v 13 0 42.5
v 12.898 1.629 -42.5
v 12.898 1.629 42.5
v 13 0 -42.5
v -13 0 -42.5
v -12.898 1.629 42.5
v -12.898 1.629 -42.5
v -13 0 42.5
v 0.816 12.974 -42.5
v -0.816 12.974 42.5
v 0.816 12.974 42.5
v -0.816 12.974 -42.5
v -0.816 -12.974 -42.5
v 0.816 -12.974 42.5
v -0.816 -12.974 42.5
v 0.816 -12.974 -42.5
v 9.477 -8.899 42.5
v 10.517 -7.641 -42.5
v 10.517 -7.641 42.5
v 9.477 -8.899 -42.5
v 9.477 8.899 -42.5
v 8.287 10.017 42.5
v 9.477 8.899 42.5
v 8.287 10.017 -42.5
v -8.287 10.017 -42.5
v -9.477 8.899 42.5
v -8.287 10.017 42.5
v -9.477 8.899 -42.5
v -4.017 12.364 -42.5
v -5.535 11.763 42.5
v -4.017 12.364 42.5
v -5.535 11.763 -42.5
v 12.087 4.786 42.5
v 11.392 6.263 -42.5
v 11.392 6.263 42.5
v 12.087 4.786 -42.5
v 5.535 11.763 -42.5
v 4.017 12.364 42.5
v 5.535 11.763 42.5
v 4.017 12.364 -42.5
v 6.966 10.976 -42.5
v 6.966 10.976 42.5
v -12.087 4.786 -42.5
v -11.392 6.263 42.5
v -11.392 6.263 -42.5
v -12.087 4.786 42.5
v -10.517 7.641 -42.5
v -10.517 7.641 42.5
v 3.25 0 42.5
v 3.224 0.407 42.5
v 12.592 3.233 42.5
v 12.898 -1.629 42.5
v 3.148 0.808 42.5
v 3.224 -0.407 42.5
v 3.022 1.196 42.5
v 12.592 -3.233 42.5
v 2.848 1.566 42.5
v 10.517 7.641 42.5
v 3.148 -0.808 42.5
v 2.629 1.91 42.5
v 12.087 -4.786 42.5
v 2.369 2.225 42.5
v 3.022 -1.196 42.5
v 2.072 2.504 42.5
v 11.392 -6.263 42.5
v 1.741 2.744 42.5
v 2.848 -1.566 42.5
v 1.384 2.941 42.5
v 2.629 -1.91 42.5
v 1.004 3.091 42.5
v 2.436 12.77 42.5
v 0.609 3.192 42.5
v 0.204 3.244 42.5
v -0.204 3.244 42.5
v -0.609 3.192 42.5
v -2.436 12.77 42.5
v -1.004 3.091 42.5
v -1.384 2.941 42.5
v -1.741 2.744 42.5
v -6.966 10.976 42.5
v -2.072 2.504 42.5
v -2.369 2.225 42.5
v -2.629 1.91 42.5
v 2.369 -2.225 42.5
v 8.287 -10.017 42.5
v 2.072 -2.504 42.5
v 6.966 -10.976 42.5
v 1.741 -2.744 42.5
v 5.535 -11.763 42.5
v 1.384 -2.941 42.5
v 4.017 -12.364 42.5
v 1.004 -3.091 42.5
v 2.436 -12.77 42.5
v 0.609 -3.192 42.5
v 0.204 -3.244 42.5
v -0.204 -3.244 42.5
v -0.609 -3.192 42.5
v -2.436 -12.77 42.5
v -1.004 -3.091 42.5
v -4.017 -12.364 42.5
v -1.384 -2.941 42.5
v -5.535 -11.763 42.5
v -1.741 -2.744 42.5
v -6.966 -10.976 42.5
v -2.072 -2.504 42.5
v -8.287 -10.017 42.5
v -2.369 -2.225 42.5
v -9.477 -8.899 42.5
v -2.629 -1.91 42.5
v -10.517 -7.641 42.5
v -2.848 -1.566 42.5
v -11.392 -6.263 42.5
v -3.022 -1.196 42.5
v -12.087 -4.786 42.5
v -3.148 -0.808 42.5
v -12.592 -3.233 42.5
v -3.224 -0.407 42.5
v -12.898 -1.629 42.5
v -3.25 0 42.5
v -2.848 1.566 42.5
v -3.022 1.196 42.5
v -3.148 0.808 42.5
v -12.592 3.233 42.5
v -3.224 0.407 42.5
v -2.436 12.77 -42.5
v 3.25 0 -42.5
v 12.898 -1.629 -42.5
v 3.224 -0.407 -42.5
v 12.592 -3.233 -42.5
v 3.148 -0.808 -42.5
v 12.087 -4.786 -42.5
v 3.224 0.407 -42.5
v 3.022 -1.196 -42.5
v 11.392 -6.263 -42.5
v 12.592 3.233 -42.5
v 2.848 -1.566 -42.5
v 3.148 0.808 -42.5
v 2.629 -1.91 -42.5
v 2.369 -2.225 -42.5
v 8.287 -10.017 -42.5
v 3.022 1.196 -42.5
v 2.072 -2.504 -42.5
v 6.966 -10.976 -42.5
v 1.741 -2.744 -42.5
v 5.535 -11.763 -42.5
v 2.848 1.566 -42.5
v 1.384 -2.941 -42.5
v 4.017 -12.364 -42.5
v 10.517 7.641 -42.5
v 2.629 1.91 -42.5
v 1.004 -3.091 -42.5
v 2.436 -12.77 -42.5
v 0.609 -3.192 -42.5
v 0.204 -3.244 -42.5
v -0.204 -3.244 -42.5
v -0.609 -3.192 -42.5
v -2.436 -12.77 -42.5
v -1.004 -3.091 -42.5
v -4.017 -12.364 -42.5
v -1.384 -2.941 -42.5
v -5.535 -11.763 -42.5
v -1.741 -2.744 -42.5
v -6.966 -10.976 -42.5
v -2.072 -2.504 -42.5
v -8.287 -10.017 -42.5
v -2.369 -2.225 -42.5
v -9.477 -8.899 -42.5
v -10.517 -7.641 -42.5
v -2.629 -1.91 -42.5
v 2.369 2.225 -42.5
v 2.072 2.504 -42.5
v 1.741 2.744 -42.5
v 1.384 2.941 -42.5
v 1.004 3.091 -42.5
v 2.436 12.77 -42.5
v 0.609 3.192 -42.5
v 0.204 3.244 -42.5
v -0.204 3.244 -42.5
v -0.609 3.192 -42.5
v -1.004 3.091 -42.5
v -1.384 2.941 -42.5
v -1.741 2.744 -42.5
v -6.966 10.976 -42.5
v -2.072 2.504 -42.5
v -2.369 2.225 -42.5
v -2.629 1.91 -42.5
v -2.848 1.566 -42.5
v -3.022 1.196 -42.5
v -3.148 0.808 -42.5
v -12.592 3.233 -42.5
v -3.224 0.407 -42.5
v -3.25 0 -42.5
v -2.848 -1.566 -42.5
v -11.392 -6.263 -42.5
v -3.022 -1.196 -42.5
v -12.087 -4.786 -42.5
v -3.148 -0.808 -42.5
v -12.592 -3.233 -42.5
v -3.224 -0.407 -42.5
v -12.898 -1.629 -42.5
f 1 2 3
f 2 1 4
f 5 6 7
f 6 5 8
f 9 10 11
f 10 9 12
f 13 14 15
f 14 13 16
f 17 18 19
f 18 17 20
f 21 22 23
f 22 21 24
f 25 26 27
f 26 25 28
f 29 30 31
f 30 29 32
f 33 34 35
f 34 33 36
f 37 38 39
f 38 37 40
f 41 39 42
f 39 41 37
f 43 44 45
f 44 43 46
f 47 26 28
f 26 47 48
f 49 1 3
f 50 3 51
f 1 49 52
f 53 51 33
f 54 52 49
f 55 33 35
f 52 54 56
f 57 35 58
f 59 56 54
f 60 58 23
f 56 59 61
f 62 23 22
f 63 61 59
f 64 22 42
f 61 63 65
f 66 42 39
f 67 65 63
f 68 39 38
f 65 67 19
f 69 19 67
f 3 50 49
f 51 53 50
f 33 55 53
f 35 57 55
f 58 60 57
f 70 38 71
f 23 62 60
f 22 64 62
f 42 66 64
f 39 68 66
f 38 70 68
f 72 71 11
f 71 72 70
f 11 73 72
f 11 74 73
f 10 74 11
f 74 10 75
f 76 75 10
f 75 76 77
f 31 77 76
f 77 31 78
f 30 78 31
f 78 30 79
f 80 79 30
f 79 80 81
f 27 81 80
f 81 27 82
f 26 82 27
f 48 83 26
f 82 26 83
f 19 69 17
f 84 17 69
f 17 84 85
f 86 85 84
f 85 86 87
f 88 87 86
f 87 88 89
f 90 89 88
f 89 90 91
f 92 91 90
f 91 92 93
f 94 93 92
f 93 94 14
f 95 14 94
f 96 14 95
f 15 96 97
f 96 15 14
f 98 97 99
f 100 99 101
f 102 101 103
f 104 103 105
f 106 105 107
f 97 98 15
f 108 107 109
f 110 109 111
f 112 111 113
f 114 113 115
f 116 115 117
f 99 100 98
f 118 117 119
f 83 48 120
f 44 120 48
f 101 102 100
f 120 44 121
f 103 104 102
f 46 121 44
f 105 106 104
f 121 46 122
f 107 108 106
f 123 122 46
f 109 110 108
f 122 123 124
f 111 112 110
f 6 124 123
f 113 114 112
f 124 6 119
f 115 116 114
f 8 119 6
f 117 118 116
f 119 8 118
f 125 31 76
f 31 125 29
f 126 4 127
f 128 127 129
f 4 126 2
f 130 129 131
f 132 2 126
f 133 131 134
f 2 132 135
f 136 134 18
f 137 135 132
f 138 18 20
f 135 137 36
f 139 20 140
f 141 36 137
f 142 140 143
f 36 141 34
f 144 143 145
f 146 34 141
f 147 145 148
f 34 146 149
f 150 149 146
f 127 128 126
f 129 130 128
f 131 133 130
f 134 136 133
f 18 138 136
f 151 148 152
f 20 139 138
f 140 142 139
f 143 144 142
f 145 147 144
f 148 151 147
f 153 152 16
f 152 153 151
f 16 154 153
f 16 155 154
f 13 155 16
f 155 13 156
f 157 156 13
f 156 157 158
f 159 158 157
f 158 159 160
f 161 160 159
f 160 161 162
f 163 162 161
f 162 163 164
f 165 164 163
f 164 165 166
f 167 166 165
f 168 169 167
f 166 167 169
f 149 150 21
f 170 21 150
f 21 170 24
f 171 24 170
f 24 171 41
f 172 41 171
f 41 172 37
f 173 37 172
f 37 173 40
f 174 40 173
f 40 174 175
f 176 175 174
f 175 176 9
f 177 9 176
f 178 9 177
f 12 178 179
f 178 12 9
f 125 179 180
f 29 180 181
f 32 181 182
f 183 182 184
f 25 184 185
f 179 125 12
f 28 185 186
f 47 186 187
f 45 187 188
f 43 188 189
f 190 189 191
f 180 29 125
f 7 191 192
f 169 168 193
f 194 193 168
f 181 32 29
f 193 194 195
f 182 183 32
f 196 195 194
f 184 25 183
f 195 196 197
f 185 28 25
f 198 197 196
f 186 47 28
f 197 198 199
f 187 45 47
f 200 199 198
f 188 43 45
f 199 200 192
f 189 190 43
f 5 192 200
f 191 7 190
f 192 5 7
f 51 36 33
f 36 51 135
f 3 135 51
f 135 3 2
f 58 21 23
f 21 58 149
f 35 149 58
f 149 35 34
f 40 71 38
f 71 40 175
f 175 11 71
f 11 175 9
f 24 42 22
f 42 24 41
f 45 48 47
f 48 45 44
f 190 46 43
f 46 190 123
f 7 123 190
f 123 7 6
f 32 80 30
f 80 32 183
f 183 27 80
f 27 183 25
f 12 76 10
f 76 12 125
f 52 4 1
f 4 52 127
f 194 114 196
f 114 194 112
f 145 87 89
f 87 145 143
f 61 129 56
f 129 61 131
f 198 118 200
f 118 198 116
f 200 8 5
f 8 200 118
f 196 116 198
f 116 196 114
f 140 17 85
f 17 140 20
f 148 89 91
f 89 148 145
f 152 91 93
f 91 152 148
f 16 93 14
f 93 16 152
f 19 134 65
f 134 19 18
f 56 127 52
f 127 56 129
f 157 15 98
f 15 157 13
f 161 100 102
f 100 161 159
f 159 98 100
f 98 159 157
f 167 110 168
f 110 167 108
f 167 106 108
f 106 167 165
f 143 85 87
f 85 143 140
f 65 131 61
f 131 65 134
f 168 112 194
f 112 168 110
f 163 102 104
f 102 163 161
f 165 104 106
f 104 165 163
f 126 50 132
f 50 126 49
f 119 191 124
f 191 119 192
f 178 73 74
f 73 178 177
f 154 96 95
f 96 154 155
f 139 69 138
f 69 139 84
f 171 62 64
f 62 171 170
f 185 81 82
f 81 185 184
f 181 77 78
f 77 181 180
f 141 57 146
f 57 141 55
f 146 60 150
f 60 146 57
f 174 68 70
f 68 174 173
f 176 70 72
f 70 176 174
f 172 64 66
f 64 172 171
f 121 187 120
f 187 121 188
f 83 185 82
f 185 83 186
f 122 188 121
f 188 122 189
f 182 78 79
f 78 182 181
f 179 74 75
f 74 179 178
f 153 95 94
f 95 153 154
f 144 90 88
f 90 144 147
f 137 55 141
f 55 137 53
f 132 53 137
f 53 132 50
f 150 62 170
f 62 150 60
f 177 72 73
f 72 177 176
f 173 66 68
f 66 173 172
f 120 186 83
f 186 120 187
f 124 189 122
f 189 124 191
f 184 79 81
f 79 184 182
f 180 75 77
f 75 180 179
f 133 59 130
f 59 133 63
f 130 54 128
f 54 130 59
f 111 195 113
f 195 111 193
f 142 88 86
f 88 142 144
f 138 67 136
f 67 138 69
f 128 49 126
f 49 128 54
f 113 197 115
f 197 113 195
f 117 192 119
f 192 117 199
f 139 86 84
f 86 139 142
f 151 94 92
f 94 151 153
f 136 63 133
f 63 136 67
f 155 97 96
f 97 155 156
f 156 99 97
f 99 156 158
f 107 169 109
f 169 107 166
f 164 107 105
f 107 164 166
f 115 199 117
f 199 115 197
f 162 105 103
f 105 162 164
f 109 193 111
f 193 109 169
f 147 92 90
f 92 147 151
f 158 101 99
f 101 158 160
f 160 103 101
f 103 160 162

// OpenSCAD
$fn = 50;


difference() {
	union() {
		translate(v = [0, 0, -42.5000000000]) {
			cylinder(h = 85, r = 13.0000000000);
		}
	}
	union() {
		translate(v = [0, 0, -100.0000000000]) {
			cylinder(h = 200, r = 3.2500000000);
		}
	}
}
